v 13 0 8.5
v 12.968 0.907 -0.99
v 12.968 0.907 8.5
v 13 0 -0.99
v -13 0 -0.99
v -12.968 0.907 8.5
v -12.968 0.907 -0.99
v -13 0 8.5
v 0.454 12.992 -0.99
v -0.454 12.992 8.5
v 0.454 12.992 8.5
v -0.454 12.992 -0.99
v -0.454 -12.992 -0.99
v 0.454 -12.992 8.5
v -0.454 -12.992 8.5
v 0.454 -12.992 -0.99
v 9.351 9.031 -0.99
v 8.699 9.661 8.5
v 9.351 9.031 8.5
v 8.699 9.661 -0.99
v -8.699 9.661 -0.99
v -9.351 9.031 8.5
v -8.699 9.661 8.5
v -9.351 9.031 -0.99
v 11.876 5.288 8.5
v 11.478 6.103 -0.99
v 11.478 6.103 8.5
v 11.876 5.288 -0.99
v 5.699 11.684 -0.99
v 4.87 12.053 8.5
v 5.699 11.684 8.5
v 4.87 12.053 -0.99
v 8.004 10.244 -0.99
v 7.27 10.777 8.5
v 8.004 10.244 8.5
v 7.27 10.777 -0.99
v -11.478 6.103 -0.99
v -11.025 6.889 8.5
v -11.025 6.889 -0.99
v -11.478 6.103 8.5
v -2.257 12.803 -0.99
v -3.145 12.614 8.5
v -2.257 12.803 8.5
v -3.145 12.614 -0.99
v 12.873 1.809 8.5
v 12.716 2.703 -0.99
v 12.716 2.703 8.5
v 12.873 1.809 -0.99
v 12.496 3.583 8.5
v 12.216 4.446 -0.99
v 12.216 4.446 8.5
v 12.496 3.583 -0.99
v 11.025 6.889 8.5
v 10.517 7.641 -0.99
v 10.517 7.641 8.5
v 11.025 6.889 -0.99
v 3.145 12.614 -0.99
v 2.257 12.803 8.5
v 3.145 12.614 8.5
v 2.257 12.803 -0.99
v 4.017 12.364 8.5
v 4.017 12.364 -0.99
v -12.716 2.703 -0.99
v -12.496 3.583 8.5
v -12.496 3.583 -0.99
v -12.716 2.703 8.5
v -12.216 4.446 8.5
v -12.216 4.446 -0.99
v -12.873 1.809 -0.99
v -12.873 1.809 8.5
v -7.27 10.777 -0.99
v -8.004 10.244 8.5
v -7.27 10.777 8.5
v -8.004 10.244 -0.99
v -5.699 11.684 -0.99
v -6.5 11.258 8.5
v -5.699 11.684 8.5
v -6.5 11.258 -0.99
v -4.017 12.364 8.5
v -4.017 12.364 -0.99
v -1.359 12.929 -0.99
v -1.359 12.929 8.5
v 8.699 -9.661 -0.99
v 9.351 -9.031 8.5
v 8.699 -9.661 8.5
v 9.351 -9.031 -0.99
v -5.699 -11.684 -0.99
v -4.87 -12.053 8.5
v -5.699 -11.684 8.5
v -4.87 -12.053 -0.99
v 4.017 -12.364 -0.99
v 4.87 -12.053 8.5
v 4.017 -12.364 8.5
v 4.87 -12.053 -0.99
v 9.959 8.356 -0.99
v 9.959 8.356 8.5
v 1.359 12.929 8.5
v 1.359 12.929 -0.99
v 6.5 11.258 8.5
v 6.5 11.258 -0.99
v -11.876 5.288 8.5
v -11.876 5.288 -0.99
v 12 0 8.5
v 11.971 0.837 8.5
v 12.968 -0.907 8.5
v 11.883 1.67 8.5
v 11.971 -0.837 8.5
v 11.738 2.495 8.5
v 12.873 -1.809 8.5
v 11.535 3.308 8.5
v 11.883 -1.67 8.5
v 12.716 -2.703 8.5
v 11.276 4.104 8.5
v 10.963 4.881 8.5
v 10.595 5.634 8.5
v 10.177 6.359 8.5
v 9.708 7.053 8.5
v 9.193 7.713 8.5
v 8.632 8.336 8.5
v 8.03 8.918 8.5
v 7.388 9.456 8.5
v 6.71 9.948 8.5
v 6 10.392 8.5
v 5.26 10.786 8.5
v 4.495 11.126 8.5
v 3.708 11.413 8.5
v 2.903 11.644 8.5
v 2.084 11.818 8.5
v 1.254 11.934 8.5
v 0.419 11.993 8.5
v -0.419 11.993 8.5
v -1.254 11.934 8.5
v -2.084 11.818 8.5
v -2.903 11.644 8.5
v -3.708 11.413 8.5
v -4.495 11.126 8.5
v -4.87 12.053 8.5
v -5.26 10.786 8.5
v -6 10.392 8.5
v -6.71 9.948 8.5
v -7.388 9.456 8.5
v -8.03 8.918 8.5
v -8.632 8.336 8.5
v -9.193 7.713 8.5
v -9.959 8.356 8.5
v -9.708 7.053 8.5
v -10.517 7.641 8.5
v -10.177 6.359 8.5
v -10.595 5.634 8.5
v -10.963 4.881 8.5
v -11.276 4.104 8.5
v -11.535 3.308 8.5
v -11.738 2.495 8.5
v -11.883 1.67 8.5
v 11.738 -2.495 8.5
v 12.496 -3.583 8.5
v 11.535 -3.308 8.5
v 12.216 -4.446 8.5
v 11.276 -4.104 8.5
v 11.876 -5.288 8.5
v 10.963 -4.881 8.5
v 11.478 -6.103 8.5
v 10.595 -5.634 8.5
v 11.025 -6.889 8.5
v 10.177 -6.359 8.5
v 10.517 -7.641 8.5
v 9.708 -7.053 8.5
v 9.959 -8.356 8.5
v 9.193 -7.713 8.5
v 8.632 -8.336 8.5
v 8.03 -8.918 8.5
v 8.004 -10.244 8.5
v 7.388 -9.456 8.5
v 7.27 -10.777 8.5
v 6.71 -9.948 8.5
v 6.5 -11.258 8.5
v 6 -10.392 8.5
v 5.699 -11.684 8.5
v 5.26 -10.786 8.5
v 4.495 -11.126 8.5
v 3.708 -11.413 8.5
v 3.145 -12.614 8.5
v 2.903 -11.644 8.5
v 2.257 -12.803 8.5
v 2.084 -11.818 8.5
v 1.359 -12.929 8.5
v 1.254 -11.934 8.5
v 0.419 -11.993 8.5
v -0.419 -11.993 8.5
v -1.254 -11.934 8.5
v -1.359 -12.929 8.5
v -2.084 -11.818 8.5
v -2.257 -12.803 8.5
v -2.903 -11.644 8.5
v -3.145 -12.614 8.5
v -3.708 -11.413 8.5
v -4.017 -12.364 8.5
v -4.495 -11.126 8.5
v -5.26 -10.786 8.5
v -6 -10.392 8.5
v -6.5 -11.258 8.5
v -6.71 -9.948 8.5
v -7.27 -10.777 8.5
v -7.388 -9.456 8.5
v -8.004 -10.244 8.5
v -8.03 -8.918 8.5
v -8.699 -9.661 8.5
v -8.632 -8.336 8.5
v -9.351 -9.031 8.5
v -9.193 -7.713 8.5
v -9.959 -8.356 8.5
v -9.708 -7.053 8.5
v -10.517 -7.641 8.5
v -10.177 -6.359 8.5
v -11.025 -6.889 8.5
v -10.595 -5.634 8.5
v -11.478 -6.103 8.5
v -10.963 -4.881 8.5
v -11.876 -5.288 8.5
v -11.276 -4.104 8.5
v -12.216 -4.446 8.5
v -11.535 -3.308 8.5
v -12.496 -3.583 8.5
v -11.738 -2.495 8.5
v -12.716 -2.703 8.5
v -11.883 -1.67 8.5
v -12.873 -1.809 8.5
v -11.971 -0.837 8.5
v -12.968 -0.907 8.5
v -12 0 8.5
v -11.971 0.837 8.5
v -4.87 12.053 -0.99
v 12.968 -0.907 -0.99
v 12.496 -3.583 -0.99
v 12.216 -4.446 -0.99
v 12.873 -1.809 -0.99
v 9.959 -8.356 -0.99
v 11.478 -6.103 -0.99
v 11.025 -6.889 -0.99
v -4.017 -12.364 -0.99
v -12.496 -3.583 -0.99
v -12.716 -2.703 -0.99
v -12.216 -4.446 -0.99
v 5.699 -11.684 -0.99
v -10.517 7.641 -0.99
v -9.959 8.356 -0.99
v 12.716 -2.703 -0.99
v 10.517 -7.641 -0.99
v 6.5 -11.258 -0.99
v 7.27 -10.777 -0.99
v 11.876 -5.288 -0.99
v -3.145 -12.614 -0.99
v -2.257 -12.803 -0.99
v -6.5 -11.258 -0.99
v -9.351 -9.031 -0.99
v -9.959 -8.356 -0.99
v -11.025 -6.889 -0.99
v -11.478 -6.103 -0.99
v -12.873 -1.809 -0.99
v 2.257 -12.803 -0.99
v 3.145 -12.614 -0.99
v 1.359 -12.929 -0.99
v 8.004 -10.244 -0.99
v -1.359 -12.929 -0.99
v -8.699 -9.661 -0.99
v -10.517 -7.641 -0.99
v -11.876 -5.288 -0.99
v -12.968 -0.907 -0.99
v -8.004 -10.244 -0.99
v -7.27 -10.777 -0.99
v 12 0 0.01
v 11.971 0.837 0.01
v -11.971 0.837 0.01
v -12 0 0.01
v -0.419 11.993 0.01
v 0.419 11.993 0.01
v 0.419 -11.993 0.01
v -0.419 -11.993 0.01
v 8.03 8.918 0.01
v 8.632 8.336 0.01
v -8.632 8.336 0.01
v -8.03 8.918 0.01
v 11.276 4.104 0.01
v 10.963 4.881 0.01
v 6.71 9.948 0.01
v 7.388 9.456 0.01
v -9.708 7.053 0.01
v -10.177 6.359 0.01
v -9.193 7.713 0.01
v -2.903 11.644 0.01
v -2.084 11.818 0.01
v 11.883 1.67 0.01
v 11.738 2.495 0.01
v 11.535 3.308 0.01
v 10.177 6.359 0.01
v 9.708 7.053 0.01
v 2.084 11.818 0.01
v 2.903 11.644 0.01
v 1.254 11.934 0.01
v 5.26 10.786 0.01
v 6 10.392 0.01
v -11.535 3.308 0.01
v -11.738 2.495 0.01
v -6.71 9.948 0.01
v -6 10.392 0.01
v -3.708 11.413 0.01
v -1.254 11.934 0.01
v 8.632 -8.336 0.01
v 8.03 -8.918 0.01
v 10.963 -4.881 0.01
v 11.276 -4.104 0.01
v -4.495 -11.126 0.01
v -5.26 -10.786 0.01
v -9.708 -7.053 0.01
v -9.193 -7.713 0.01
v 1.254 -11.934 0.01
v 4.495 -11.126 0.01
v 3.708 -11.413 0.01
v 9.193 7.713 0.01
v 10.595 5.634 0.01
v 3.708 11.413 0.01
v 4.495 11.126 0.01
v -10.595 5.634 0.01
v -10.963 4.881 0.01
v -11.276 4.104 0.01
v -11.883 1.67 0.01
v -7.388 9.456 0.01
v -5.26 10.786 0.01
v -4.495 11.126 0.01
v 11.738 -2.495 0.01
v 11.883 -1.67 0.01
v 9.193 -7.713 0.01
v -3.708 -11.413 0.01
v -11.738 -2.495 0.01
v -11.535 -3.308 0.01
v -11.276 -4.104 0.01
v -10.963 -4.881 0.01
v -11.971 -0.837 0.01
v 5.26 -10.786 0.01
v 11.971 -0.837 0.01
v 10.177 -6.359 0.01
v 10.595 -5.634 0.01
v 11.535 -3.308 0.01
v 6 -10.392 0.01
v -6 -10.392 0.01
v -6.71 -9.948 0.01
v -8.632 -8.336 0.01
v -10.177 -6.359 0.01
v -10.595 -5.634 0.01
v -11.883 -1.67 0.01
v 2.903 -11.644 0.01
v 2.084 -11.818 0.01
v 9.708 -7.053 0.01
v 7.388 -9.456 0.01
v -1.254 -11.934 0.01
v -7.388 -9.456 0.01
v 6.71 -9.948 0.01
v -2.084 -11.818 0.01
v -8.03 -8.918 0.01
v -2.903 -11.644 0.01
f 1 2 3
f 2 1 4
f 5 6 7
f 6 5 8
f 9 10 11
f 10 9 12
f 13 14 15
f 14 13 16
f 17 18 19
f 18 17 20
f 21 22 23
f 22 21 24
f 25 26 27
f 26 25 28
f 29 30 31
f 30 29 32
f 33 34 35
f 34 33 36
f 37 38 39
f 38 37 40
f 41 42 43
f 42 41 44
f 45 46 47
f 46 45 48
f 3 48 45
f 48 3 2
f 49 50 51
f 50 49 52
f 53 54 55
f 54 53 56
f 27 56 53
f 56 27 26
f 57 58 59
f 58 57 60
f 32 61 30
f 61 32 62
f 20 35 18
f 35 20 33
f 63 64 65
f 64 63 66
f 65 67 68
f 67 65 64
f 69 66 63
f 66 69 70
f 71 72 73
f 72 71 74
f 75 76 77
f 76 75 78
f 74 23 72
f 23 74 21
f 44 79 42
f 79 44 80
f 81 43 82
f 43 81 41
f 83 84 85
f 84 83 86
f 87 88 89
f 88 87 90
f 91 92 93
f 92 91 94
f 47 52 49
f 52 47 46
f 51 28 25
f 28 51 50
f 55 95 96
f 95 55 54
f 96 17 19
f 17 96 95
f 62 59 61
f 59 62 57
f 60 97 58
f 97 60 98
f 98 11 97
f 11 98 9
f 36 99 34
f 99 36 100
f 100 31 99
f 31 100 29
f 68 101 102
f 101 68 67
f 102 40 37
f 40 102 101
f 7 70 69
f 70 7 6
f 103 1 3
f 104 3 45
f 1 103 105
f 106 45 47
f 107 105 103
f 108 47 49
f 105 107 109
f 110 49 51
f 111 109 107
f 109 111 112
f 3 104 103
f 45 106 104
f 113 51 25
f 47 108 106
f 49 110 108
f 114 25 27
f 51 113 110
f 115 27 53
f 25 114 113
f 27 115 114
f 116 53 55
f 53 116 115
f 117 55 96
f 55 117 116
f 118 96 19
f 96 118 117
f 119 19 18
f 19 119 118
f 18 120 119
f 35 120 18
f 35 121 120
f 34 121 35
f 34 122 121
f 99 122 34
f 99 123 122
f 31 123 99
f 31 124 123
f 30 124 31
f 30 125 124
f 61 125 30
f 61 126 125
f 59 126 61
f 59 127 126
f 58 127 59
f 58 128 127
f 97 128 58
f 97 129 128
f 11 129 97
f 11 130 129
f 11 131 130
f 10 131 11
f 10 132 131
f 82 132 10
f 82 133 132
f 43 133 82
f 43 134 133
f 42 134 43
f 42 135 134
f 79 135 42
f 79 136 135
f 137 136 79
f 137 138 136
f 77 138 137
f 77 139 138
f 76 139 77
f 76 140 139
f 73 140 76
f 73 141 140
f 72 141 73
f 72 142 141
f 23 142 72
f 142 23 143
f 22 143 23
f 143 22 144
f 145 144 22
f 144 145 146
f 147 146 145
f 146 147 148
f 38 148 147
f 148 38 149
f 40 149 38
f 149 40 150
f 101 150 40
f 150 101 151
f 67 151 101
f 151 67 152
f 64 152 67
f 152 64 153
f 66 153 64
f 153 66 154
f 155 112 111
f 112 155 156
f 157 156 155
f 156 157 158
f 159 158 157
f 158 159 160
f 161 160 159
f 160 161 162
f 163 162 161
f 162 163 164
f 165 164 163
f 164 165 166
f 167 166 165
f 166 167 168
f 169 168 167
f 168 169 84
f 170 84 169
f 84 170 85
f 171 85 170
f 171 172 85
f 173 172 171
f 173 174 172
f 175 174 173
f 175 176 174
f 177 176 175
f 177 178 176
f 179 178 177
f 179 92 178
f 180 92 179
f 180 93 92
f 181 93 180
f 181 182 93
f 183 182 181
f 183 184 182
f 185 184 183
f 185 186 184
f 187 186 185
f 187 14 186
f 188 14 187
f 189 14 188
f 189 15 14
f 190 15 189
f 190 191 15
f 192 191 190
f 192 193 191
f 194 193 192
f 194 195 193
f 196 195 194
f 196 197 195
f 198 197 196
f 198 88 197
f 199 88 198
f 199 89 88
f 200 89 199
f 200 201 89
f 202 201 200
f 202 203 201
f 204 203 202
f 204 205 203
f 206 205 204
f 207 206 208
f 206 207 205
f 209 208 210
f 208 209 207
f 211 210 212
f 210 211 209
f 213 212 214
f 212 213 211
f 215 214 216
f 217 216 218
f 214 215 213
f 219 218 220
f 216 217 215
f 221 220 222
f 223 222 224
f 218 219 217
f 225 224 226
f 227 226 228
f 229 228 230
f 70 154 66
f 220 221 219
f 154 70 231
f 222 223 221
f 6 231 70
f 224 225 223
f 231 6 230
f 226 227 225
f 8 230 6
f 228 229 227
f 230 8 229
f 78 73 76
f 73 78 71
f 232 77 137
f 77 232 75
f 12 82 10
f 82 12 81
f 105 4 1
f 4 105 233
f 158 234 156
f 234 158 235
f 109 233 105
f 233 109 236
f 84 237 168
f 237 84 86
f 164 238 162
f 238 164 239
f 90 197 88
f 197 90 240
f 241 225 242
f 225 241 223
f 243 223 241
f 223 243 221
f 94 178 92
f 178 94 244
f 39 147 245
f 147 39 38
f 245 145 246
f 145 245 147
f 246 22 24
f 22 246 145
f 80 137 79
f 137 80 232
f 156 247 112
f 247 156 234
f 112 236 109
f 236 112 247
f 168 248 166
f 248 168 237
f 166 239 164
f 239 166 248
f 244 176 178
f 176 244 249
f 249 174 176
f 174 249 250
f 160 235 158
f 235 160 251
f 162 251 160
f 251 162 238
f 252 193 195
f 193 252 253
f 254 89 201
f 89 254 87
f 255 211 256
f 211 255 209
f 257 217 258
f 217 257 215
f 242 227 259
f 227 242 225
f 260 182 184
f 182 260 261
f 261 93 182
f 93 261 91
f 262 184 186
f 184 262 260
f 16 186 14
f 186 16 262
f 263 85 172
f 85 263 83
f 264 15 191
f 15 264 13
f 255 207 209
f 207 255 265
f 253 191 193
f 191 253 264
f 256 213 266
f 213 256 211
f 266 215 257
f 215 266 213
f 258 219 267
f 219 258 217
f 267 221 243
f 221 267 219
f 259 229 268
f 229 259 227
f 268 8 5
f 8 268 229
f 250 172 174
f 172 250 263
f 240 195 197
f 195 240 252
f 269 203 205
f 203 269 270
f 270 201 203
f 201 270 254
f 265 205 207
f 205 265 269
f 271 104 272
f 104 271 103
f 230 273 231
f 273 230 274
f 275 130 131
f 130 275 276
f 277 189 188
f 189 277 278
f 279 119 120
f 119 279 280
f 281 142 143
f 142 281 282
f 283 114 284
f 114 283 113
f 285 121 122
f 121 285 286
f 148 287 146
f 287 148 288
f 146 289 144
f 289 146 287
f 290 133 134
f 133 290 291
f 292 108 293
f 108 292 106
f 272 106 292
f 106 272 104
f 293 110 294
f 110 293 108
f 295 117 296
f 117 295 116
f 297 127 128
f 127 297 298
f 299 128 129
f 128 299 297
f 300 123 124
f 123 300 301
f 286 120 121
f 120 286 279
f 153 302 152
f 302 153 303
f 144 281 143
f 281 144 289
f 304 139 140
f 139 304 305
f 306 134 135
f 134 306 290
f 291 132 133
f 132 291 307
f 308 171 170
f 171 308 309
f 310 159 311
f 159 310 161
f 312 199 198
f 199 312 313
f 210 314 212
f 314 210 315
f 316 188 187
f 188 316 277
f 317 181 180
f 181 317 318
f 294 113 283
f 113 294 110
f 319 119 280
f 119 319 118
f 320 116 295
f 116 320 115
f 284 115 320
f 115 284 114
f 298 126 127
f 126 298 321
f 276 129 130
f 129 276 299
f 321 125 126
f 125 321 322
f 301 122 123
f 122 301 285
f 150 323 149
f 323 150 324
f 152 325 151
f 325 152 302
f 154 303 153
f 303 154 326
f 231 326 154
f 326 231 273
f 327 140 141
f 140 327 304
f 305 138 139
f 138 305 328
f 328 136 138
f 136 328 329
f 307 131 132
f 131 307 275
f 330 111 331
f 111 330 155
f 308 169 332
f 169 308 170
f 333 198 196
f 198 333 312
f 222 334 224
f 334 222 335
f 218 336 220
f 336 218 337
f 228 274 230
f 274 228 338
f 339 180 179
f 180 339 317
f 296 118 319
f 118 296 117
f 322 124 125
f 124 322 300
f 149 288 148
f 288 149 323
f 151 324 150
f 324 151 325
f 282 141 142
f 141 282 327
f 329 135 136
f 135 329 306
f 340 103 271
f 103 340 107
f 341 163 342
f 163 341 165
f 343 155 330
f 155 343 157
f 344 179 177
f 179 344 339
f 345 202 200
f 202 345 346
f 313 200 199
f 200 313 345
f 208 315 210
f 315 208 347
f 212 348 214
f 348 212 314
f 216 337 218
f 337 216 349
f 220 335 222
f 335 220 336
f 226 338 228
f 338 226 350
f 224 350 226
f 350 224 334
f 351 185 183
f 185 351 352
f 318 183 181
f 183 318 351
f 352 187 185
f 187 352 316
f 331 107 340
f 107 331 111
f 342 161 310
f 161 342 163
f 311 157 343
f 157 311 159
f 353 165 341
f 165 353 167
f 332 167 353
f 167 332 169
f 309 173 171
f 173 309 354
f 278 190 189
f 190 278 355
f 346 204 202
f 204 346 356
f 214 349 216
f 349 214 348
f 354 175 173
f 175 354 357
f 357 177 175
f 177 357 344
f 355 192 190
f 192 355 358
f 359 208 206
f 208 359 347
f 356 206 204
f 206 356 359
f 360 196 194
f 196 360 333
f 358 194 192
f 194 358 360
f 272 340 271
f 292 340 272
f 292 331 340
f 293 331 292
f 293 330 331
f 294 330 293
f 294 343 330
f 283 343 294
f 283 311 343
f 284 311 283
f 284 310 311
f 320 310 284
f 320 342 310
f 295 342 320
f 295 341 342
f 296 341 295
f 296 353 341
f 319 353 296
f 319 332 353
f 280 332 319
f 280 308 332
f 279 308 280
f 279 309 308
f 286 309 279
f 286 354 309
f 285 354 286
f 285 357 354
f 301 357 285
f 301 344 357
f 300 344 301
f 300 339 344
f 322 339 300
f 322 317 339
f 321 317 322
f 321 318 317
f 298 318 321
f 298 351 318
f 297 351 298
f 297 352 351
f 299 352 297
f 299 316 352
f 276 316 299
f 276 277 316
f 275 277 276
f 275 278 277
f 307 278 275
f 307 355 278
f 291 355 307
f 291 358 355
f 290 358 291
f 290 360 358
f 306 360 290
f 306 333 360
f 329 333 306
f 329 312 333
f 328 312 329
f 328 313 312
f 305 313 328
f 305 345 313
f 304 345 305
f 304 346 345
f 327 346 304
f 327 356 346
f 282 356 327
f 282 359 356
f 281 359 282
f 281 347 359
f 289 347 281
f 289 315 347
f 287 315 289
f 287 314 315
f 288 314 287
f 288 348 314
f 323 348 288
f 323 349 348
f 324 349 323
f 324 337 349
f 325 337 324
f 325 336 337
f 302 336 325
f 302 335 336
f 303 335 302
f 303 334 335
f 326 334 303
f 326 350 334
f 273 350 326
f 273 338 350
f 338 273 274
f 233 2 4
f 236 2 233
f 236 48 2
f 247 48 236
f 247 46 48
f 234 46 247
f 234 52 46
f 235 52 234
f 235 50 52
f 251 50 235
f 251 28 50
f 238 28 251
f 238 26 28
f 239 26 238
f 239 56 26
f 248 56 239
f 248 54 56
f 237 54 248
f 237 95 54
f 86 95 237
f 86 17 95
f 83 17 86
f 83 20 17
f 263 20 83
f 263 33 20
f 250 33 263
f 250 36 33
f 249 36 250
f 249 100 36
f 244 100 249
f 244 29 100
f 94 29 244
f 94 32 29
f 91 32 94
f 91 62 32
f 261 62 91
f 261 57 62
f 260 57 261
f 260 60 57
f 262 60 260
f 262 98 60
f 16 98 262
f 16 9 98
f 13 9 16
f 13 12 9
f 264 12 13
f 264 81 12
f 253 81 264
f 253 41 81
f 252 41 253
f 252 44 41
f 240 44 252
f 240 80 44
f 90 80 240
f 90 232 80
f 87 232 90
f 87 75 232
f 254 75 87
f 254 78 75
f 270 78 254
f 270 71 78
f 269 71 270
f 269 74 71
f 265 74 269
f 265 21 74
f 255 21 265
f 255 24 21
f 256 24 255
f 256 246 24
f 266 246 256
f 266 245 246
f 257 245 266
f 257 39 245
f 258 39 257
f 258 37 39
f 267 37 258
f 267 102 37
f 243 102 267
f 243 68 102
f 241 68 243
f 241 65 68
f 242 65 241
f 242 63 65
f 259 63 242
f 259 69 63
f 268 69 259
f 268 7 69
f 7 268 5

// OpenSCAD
height = 8.5;
innerDia = 24;
thickness = 1;
baseThickness = 1;

innerRad = innerDia/2;

cutting_jig();

module cutting_jig()
{
    difference()
    {
        cylinder(r=innerRad+thickness, h=height, $fn=90);
        cylinder(r=innerRad, h=height*3, center=true, $fn=90);
    }
    
    translate([0, 0, -baseThickness+0.01])
    cylinder(r=innerRad+thickness, h=baseThickness, $fn=90);
}
